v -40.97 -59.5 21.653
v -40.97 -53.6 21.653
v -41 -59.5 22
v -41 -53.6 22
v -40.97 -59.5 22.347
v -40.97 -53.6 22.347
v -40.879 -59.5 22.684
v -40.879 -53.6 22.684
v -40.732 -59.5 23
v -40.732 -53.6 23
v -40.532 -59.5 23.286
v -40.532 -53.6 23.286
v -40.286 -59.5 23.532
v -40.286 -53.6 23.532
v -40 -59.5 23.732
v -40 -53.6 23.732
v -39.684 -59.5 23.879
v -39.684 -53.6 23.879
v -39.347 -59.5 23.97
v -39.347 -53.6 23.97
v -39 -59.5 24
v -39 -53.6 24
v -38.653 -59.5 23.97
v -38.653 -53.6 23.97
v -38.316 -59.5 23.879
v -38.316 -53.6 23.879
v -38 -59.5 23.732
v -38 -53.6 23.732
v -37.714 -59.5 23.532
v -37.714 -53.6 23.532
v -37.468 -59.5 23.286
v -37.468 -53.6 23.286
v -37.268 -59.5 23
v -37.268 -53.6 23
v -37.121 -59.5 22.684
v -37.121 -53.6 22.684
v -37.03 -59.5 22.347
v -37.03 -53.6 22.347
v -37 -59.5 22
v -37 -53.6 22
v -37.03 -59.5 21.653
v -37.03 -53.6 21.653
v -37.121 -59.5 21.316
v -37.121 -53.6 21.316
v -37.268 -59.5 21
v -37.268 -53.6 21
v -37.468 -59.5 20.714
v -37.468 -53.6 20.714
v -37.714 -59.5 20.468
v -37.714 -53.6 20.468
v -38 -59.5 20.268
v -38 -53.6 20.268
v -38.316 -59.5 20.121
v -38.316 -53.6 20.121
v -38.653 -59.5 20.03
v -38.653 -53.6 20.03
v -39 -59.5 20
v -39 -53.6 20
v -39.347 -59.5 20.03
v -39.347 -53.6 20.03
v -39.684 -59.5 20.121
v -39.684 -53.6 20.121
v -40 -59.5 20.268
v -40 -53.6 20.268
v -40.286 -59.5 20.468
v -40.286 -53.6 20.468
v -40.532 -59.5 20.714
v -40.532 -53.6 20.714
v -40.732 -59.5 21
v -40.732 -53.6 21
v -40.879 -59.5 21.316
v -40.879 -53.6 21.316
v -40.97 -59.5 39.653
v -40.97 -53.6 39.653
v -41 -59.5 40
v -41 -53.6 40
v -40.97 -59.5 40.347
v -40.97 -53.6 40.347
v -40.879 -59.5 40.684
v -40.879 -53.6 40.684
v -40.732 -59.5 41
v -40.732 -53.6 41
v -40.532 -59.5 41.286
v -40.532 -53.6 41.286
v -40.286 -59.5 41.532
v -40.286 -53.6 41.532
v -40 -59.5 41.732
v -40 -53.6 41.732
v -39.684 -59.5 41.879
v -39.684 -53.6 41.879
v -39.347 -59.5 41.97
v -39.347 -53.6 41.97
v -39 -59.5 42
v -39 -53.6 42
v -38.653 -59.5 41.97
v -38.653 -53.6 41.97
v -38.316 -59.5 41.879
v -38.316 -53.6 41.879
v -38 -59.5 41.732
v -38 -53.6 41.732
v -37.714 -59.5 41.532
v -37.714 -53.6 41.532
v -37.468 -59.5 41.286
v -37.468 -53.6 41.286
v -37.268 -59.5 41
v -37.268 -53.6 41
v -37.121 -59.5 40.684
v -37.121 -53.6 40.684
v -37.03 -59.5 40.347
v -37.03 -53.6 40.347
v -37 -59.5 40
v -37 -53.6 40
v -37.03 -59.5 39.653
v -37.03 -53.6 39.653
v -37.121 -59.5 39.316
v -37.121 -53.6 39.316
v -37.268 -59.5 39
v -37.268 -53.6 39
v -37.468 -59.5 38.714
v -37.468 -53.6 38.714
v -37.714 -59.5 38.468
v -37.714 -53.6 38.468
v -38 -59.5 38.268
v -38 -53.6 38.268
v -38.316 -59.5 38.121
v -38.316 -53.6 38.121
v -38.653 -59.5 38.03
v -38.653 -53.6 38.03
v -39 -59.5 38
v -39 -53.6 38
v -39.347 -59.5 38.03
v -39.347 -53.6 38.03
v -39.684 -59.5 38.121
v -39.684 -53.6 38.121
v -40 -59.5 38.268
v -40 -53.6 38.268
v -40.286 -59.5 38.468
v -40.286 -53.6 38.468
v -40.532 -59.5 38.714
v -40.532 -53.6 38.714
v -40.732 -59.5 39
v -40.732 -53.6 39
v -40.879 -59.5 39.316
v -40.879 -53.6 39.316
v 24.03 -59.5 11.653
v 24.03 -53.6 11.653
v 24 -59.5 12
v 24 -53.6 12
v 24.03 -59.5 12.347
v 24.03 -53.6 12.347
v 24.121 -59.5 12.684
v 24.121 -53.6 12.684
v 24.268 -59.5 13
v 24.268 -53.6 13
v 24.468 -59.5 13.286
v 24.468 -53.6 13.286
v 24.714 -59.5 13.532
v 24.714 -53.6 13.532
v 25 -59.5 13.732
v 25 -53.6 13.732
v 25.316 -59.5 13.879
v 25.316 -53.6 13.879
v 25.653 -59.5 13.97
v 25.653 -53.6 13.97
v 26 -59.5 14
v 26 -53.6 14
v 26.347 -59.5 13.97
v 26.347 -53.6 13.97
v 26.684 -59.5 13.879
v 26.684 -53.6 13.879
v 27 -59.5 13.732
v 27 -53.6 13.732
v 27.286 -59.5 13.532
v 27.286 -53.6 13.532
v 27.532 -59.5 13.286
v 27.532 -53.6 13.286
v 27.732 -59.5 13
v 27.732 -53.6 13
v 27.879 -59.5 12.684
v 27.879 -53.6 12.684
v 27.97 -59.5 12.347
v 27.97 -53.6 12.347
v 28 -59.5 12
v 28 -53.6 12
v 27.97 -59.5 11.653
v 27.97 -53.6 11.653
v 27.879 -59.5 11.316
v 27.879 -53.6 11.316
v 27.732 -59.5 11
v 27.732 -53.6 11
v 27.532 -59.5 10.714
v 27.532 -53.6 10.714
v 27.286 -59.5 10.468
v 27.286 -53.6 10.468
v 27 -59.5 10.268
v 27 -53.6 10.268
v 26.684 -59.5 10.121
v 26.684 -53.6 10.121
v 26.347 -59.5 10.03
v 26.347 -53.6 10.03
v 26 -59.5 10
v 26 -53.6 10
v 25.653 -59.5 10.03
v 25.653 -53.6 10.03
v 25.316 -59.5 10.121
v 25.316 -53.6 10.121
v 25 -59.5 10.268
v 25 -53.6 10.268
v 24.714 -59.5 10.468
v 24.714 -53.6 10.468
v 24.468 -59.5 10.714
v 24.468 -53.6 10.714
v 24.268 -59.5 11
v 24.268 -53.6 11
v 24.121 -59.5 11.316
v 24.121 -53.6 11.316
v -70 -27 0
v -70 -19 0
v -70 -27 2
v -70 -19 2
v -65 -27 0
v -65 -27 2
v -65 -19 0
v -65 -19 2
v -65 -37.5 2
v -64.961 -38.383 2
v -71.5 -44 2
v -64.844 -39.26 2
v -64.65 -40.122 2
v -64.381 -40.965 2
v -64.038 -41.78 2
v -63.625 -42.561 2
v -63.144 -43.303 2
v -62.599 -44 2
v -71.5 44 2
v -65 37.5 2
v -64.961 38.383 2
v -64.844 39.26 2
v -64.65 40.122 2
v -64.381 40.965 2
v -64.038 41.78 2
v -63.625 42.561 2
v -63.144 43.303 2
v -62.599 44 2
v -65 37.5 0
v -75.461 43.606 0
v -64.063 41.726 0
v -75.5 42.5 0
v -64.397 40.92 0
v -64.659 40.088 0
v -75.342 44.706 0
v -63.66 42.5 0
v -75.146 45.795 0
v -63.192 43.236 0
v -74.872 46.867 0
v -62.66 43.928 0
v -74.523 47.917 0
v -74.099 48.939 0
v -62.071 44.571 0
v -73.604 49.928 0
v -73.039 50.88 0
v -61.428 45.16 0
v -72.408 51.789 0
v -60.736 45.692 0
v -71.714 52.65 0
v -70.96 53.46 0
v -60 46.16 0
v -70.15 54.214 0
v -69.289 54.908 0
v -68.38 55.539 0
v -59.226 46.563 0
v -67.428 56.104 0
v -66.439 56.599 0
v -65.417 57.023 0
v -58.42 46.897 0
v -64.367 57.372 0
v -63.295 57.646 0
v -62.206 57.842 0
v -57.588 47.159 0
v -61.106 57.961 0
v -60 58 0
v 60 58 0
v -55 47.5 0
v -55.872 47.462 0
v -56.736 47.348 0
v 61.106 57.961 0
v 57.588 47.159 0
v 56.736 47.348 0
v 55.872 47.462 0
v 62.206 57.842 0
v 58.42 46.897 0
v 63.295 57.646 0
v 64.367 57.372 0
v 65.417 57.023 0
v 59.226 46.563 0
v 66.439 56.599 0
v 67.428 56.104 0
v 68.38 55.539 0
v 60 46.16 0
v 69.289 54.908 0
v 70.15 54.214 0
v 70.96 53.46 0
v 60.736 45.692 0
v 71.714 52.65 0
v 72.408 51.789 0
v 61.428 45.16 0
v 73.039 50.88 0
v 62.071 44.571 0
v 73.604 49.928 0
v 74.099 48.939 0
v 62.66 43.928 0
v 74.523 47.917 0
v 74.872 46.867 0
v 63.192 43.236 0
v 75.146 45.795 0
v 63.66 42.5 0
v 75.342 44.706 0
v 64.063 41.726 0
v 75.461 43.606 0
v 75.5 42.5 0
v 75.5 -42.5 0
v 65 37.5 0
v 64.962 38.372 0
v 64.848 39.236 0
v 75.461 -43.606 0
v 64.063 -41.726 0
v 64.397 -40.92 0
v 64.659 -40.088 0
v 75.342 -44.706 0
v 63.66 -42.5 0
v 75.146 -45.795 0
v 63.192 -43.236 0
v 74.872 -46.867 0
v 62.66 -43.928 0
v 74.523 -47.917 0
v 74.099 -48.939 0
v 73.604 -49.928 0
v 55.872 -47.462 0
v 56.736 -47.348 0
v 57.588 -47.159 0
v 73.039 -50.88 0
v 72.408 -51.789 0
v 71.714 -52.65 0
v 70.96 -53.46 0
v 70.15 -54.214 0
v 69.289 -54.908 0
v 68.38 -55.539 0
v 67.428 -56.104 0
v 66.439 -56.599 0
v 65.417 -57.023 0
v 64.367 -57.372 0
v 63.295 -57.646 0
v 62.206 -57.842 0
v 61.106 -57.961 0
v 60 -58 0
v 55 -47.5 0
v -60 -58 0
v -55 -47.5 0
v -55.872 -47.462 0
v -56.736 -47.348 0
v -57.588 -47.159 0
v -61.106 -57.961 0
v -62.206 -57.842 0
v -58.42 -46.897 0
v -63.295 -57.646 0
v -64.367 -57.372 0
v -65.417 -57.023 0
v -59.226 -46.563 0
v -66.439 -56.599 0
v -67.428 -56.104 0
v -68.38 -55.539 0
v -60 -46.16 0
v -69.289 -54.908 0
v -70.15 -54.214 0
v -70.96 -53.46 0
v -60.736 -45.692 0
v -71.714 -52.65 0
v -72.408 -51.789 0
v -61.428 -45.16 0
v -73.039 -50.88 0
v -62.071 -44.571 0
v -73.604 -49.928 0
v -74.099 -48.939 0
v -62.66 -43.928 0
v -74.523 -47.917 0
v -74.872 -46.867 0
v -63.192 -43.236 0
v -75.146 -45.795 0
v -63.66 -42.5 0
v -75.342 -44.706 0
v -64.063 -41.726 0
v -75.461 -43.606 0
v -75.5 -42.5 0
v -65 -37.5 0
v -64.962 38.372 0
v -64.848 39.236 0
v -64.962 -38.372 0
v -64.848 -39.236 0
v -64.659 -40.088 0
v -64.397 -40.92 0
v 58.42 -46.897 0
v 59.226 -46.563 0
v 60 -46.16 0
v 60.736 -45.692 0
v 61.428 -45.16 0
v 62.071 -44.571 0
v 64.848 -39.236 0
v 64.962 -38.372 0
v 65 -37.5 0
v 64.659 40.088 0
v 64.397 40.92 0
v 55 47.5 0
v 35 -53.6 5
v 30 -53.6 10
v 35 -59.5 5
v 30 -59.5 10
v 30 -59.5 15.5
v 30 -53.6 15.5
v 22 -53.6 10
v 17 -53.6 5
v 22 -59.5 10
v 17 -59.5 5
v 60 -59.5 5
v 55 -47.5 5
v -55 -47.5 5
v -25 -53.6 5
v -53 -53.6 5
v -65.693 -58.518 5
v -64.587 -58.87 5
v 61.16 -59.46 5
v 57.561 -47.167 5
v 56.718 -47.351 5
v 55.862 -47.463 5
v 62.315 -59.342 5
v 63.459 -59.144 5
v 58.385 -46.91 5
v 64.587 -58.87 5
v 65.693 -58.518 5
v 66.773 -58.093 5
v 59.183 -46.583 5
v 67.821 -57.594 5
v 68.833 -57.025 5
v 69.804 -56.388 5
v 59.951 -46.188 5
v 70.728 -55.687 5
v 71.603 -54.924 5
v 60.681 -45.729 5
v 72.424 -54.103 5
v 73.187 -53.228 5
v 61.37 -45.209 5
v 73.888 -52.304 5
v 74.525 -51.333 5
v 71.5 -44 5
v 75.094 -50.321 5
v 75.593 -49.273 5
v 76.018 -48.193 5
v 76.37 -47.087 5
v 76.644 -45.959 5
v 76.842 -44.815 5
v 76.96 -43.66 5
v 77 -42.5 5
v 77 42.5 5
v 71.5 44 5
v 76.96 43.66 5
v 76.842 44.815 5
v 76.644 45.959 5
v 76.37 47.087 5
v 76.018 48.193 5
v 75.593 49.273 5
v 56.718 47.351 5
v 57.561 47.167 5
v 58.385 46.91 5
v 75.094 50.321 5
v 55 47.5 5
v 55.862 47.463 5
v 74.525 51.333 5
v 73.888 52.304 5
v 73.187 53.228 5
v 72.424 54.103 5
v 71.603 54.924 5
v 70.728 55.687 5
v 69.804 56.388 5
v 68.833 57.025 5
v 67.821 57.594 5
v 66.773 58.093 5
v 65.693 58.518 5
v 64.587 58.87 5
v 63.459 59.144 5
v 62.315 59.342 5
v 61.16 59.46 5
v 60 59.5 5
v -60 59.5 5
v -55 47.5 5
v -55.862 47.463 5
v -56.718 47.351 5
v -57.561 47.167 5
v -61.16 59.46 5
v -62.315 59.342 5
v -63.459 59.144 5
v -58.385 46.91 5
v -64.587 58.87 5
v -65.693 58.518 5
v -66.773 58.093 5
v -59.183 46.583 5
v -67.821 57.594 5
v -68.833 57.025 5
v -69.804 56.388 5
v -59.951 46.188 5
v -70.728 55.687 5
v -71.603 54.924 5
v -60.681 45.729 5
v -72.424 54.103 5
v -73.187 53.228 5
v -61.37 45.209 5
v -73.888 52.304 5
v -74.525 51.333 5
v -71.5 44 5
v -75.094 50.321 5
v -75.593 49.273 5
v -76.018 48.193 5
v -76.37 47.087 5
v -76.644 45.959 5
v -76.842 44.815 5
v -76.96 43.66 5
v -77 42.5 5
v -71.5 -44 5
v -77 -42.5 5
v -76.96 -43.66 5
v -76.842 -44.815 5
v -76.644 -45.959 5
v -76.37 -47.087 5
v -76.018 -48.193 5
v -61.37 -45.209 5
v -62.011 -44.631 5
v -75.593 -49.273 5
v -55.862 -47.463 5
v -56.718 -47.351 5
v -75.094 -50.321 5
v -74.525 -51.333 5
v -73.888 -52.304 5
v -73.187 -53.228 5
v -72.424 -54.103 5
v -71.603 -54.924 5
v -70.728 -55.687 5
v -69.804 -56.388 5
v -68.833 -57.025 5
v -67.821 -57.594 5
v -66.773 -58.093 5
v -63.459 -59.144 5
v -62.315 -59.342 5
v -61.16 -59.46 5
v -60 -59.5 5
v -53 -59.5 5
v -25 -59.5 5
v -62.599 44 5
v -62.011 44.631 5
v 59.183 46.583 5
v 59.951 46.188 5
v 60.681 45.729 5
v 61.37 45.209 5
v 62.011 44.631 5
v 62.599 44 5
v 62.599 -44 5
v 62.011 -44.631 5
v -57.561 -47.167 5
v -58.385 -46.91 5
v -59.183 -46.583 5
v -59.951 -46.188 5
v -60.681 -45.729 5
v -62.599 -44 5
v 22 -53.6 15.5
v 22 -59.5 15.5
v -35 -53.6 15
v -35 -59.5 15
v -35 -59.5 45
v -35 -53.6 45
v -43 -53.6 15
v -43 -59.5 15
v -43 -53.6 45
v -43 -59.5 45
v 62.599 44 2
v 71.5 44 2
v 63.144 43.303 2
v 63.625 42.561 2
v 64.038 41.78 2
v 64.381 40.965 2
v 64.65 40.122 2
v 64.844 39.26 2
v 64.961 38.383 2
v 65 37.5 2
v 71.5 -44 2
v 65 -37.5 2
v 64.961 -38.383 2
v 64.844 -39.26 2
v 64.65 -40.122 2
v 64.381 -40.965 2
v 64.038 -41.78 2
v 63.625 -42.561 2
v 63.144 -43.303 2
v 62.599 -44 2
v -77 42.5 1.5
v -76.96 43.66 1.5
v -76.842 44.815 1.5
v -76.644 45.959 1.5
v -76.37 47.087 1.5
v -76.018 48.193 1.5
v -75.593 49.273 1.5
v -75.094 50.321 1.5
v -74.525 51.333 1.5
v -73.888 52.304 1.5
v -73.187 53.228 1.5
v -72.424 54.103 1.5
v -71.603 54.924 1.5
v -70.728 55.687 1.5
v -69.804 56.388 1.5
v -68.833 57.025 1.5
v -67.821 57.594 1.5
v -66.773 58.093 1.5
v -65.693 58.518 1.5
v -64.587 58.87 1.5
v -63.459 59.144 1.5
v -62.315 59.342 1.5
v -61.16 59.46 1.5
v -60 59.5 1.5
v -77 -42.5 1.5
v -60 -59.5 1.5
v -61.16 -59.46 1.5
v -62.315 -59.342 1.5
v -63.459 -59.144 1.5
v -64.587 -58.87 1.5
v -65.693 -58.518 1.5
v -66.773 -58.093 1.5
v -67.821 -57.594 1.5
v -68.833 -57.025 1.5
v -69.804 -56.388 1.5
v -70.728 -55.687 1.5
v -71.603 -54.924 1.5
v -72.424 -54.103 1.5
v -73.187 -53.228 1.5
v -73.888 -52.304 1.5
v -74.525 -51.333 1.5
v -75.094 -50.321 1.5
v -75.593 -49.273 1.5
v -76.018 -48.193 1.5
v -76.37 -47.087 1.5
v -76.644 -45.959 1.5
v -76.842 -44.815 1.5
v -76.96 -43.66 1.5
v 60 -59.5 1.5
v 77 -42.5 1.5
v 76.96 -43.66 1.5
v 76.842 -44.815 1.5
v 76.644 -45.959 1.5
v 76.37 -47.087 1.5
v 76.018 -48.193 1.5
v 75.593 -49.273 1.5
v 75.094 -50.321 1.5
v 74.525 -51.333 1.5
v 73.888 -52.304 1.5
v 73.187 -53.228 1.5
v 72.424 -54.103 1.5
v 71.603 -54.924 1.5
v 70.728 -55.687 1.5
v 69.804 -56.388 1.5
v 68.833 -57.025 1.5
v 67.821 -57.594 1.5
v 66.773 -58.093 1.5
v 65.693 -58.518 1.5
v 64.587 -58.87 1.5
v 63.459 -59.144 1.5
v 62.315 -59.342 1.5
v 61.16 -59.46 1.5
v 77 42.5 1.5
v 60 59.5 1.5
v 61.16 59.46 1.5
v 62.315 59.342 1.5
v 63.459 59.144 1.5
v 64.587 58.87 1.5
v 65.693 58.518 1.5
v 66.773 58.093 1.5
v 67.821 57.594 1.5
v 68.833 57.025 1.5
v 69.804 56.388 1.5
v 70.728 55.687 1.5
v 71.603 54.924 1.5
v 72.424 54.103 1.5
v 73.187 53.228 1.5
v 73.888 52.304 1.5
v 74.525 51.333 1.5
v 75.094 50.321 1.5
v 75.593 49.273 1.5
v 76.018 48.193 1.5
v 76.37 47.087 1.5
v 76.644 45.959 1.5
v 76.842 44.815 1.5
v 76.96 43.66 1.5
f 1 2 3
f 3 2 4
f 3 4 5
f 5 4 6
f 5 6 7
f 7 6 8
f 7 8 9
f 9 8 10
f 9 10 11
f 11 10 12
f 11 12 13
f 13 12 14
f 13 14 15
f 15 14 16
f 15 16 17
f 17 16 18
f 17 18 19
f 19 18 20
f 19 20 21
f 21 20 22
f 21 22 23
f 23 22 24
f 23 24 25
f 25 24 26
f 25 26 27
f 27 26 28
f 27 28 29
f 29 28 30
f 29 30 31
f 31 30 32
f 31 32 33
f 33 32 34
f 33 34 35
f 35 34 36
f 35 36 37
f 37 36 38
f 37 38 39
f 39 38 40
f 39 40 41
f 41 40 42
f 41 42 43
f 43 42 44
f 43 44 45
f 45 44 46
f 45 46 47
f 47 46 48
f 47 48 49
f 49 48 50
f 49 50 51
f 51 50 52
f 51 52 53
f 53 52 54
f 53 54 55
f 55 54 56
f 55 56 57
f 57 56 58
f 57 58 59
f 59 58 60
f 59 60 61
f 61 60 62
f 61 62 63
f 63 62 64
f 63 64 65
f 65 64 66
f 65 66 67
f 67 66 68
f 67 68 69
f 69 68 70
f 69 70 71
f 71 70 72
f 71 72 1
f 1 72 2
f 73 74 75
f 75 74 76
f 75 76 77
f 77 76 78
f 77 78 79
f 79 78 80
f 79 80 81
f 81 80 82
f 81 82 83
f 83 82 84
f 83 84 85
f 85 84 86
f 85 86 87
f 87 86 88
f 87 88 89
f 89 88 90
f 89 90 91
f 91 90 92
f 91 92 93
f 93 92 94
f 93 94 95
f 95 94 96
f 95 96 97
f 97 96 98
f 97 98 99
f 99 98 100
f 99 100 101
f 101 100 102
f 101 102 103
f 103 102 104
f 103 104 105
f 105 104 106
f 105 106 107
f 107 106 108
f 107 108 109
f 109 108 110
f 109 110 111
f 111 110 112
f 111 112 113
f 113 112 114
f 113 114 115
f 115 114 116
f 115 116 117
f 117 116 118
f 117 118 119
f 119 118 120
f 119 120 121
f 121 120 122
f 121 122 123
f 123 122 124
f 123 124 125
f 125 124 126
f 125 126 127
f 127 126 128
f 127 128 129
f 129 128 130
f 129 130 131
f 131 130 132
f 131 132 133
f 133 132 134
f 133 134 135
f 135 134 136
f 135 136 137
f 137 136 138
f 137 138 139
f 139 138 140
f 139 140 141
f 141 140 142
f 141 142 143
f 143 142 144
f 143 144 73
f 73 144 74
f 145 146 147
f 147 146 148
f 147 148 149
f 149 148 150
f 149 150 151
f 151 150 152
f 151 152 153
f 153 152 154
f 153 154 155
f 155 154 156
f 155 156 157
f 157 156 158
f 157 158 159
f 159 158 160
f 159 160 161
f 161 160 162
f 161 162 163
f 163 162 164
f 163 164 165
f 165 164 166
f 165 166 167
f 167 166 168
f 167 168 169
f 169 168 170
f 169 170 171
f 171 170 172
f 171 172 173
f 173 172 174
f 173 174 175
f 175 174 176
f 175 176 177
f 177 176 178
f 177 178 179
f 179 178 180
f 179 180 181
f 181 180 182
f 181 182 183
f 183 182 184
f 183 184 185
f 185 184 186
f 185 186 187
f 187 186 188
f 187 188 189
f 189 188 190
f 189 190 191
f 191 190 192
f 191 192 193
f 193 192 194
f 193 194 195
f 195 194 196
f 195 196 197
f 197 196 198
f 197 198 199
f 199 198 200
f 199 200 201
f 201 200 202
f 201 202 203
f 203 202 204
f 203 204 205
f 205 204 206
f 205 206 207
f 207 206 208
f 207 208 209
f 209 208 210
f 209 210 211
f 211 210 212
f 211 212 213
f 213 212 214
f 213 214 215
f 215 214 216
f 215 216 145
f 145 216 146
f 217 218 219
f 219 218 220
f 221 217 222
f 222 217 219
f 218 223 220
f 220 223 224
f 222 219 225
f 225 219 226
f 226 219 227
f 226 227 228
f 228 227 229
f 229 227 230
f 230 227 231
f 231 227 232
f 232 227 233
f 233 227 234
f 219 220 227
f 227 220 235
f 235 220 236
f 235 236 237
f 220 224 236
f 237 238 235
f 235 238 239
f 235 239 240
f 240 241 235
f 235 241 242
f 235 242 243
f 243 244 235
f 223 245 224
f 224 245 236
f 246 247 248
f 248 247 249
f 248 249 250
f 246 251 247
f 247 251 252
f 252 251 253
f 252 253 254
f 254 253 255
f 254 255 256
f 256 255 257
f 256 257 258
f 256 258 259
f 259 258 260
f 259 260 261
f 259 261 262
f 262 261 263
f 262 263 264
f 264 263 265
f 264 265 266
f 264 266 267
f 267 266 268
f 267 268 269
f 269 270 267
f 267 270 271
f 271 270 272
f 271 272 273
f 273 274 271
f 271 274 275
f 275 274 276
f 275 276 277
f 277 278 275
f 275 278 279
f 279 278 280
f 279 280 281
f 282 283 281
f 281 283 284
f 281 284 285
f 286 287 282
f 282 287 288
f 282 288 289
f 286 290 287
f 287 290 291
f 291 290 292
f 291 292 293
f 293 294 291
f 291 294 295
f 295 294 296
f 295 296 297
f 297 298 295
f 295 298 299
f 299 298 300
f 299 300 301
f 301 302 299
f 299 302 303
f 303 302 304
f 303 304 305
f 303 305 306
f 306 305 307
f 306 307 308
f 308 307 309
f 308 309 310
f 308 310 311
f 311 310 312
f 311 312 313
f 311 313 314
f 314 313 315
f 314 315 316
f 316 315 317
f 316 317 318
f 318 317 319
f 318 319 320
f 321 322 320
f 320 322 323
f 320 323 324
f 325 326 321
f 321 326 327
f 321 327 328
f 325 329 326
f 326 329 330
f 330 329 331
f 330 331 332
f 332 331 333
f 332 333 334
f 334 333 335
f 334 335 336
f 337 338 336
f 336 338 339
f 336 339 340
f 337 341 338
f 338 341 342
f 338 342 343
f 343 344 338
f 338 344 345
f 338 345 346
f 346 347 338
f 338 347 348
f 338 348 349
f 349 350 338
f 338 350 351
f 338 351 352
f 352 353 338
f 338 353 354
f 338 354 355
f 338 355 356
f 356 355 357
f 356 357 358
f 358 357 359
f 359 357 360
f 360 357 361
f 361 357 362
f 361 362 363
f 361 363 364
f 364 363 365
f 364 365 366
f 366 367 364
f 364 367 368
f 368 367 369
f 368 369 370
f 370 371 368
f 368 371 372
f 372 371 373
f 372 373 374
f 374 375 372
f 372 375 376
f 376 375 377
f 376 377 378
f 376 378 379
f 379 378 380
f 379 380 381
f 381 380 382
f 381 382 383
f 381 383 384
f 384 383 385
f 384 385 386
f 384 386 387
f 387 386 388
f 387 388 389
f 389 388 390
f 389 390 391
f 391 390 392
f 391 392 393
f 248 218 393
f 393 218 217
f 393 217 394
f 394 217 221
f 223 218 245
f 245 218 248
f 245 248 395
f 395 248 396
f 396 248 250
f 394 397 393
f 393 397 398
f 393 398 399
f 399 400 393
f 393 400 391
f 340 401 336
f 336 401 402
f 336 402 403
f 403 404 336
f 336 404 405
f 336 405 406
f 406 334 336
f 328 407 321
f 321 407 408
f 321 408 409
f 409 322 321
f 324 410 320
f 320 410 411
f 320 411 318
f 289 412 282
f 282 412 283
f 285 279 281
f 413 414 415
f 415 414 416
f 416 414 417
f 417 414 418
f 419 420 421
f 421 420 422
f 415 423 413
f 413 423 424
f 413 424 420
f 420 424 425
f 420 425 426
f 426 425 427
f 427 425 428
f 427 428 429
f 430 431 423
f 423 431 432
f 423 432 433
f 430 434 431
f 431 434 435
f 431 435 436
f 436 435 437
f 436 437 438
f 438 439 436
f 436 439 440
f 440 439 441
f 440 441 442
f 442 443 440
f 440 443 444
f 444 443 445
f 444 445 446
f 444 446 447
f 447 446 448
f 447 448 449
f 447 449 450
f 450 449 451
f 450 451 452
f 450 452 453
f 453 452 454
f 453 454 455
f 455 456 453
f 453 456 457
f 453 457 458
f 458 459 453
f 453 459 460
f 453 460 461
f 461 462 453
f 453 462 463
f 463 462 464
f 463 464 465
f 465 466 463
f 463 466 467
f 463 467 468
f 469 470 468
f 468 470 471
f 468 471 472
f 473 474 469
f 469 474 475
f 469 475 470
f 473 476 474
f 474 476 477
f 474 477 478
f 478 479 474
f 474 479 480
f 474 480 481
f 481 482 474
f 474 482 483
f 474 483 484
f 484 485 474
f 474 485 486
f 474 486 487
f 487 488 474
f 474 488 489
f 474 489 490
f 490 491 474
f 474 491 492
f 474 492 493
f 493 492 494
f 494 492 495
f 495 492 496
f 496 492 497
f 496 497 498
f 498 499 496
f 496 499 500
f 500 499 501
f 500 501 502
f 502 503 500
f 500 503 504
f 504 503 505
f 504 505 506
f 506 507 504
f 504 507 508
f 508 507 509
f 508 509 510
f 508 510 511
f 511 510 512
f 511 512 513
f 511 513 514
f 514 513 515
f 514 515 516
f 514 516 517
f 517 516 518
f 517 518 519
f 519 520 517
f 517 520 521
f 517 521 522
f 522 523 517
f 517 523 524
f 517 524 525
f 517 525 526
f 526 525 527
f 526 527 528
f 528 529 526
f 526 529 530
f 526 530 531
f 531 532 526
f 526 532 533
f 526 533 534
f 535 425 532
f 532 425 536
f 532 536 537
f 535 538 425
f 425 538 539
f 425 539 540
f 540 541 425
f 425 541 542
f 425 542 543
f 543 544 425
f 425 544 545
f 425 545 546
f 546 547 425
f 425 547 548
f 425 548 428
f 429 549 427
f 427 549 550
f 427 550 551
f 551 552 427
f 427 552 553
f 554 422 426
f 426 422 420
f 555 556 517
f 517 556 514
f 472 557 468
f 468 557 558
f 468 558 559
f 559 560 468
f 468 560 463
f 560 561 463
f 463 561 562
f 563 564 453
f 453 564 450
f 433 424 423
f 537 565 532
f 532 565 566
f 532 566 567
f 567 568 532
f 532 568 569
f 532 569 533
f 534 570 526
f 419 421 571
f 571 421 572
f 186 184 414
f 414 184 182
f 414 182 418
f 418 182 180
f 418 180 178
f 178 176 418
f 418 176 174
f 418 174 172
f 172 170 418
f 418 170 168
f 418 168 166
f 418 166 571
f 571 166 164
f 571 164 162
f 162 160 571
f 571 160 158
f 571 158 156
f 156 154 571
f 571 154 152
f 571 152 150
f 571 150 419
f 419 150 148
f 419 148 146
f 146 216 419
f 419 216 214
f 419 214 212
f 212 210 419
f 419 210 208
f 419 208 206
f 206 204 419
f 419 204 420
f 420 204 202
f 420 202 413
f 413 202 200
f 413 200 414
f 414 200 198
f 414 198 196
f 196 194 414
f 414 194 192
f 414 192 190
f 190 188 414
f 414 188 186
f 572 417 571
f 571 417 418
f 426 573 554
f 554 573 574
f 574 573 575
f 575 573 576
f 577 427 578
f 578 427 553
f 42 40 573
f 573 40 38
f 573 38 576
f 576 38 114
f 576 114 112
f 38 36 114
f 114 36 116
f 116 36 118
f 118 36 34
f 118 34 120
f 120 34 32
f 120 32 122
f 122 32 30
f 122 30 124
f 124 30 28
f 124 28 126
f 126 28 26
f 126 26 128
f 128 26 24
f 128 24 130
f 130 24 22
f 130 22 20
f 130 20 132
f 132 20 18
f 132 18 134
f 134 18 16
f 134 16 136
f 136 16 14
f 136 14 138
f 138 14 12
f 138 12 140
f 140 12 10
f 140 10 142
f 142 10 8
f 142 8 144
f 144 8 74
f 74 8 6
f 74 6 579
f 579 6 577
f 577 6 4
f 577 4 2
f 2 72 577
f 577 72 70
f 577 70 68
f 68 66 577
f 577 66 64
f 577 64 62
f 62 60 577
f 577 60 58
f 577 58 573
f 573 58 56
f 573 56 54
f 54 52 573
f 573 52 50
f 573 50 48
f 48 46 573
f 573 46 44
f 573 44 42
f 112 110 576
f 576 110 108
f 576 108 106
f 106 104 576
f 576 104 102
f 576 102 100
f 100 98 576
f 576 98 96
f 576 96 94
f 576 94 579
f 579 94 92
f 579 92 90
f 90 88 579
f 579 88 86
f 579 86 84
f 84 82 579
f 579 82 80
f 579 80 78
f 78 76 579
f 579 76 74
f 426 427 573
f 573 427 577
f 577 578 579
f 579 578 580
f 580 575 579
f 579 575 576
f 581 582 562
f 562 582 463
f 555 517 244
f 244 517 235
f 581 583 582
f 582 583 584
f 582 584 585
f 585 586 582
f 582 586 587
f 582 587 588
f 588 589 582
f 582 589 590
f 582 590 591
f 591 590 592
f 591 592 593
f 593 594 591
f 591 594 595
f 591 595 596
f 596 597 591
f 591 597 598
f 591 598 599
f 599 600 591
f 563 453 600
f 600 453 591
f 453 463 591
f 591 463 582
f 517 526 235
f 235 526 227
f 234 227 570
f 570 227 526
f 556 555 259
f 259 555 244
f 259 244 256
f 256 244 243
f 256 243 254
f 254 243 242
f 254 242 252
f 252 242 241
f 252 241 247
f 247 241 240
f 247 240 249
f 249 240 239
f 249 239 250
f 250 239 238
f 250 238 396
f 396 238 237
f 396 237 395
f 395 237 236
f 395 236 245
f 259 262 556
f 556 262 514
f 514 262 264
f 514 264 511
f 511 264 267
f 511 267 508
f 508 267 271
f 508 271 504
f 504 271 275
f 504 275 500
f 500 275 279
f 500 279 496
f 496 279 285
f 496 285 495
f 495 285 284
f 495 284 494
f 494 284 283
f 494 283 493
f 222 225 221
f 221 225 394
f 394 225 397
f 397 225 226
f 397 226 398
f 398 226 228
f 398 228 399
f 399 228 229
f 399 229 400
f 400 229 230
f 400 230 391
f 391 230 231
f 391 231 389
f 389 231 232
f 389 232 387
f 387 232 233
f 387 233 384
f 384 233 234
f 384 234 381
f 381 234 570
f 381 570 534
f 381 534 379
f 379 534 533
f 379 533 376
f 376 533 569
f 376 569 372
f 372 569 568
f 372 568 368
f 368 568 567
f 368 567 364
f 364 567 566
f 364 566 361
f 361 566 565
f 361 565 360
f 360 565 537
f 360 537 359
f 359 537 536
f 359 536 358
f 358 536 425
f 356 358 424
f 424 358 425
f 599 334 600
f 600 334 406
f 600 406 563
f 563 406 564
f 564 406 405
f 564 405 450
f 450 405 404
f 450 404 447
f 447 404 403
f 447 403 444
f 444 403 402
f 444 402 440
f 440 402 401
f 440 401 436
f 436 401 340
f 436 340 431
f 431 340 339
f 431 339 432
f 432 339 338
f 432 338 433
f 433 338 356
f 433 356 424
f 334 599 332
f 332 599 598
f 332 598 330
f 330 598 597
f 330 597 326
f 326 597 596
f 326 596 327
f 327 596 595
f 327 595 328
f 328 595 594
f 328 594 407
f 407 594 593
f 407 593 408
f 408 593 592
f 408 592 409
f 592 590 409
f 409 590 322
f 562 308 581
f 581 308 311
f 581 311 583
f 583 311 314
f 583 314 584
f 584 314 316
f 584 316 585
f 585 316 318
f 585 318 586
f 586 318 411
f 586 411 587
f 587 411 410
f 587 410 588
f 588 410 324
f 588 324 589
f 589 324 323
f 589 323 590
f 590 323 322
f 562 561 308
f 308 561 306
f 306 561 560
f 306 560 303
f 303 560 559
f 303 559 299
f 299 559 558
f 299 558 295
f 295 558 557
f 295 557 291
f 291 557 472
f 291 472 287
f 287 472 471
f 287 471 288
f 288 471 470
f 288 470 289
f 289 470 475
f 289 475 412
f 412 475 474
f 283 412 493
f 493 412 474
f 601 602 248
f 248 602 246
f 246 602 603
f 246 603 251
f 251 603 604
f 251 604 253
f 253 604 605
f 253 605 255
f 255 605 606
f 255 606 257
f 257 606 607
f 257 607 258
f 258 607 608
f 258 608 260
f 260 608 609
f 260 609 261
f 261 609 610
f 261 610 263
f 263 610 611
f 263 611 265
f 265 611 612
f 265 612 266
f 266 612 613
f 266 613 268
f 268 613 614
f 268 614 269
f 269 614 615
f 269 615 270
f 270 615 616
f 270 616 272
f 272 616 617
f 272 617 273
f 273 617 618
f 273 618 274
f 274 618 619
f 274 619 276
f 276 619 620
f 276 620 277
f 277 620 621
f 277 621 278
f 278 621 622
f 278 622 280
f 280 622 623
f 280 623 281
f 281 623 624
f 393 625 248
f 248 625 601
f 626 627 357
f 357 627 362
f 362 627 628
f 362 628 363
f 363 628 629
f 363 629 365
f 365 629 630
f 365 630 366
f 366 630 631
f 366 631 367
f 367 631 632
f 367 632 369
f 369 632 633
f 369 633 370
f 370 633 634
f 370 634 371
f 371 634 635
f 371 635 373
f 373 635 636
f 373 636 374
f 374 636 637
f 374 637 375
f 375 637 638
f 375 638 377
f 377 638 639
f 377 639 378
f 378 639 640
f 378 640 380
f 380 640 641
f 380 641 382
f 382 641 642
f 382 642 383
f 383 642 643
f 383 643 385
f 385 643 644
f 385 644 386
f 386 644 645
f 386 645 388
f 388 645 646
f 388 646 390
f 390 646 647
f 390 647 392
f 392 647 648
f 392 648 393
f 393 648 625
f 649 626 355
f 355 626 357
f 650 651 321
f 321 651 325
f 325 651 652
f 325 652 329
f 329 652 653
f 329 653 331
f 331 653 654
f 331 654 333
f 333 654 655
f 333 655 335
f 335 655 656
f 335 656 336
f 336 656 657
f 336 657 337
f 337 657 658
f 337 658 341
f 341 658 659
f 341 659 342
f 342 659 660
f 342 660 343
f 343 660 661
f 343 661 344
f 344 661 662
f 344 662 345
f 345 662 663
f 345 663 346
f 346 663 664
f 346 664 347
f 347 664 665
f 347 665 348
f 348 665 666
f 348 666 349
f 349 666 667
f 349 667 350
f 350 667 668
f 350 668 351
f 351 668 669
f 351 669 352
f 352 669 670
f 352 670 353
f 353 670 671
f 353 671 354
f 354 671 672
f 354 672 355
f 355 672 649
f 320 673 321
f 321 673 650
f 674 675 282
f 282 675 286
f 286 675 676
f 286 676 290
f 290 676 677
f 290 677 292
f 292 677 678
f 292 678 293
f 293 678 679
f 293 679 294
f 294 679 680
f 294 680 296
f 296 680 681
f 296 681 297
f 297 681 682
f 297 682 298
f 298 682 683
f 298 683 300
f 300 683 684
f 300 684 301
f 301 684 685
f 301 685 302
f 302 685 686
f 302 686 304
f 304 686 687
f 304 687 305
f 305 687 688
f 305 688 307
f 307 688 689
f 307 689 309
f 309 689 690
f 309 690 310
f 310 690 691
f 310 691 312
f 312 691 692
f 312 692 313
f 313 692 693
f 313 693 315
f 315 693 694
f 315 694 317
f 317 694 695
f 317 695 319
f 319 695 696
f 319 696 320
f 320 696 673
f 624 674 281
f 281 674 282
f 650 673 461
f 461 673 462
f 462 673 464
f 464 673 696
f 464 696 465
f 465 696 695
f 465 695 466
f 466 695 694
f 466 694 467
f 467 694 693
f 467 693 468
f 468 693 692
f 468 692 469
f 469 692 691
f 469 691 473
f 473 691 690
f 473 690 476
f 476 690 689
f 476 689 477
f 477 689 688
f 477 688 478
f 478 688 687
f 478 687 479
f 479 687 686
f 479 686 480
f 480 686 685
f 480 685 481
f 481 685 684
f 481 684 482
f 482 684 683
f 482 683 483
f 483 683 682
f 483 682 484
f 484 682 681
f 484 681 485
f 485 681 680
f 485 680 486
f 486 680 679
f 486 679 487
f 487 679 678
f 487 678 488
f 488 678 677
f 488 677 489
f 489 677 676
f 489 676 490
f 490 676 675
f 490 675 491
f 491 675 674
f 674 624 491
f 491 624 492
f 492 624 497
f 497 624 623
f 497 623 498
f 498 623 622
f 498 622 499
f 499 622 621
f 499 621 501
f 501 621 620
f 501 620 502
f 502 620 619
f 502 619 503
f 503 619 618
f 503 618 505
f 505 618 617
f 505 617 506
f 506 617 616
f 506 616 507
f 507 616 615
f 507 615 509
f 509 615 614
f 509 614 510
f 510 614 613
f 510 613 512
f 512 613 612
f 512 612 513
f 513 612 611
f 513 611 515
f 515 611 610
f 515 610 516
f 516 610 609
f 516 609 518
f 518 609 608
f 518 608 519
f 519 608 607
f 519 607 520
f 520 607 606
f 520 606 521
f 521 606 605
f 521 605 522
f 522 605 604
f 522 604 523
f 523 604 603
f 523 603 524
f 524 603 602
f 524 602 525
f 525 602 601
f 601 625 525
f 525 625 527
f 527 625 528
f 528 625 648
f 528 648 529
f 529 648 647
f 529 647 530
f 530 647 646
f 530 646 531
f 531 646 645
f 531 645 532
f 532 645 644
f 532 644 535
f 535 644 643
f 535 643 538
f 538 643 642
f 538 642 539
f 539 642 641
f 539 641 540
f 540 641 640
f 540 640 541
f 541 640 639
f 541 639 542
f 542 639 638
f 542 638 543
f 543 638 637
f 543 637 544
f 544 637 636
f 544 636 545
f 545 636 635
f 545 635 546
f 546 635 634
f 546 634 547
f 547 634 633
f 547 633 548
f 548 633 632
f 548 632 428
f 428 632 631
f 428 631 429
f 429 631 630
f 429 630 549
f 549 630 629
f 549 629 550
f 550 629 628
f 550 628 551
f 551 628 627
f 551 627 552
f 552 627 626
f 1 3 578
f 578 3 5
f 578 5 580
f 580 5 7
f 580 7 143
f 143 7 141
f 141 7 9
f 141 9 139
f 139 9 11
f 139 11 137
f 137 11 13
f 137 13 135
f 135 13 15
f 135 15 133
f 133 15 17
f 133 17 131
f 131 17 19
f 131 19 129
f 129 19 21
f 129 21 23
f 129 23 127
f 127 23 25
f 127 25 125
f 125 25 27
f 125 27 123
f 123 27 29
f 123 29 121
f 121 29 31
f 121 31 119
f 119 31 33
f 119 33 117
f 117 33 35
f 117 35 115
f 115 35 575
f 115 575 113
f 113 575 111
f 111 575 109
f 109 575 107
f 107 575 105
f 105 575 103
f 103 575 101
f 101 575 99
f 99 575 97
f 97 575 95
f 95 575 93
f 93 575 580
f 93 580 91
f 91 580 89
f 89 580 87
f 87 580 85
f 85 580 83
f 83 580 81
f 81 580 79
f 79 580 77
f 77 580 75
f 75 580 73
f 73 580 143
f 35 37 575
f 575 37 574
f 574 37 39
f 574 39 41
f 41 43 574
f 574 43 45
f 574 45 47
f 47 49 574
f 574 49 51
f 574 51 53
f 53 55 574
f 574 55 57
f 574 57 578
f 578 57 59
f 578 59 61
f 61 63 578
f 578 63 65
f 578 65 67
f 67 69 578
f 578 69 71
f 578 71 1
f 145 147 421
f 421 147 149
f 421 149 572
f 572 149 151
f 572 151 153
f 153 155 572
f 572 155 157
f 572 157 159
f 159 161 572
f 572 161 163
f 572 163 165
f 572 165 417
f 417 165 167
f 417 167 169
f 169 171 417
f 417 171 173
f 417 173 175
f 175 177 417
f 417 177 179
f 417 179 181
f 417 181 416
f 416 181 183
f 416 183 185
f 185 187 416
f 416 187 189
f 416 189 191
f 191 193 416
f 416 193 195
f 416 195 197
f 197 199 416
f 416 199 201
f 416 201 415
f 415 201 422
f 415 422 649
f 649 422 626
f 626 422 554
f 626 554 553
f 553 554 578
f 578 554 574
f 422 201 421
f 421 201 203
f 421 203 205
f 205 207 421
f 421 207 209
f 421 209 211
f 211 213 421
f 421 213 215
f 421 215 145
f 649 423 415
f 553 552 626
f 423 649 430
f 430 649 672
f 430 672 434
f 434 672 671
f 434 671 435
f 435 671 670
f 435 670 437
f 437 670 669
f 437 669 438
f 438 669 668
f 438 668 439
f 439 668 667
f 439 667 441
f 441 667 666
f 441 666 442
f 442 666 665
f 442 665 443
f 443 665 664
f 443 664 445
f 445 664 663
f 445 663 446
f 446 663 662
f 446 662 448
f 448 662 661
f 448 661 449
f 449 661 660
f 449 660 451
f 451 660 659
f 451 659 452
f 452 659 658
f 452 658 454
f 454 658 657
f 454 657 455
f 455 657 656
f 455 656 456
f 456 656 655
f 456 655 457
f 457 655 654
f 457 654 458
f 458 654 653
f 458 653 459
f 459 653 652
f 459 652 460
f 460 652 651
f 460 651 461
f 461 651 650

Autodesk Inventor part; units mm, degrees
ref_plane "YZ Plane" through (0, 0, 0) normal (1, 0, 0) x (0, 1, 0)
ref_plane "XZ Plane" through (0, 0, 0) normal (0, 1, 0) x (-1, 0, 0)
ref_plane "XY Plane" through (0, 0, 0) normal (0, 0, 1) x (1, 0, 0)
sketch "Skizze1" plane through (0, 0, 0) normal (0, 0, 1) x (1, 0, 0)
  line L0 (-77, 59.5) -> (77, 59.5)
  line L1 (77, 59.5) -> (77, -59.5)
  line L2 (77, -59.5) -> (-77, -59.5)
  line L3 (-77, -59.5) -> (-77, 59.5)
  line L4 (-77, 59.5) -> (77, -59.5) construction
  line L5 (77, 59.5) -> (-77, -59.5) construction
  point P0 (0, 0)
  dimension "d0" = 154
  dimension "d1" = 119
extrude "Extrusion1" add sketch "Skizze1" along normal blind 5
fillet "Rundung1" radius 17 4 edges at (77, 59.5, 2.5) (77, -59.5, 2.5) (-77, -59.5, 2.5) (-77, 59.5, 2.5)
chamfer "Fasen1" distance 1.5 angle 45 8 edges at (-72.0208, 54.5208, 0) (-77, 0, 0) (-72.0208, -54.5208, 0) (0, -59.5, 0) (72.0208, -54.5208, 0) (77, 0, 0) (72.0208, 54.5208, 0) (0, 59.5, 0)
sketch "Skizze2" plane through (0, 0, 5) normal (0, 0, 1) x (1, 0, 0)
  line L0 (-55, 47.5) -> (55, 47.5)
  line L1 (65, 37.5) -> (65, -37.5)
  line L2 (55, -47.5) -> (-55, -47.5)
  line L3 (-65, -37.5) -> (-65, 37.5)
  line L4 (-65, 47.5) -> (65, -47.5) construction
  line L5 (65, 47.5) -> (-65, -47.5) construction
  arc A0 (-55, 47.5) -> (-65, 37.5) centre (-55, 37.5) ccw
  arc A1 (65, 37.5) -> (55, 47.5) centre (55, 37.5) ccw
  arc A2 (-65, -37.5) -> (-55, -47.5) centre (-55, -37.5) ccw
  arc A3 (55, -47.5) -> (65, -37.5) centre (55, -37.5) ccw
  line L6 (77, -42.5) -> (77, 42.5) projected
  line L7 (-77, 42.5) -> (-77, -42.5) projected
  line L8 (-60, -59.5) -> (60, -59.5) projected
  line L9 (60, 59.5) -> (-60, 59.5) projected
  point P0 (0, 0)
  dimension "d10" = 10
  dimension "d11" = 10
  dimension "d12" = 10
  dimension "d13" = 10
  dimension "d14" = 95
  dimension "d15" = 130
  dimension "d16" = 154
  dimension "d17" = 119
extrude "Extrusion2" cut sketch "Skizze2" against normal through all
sketch "Skizze3" plane through (0, 0, 5) normal (0, 0, 1) x (1, 0, 0)
  line L0 (-71.5, 44) -> (71.5, 44)
  line L1 (71.5, 44) -> (71.5, -44)
  line L2 (71.5, -44) -> (-71.5, -44)
  line L3 (-71.5, -44) -> (-71.5, 44)
  line L4 (-71.5, 44) -> (71.5, -44) construction
  line L5 (71.5, 44) -> (-71.5, -44) construction
  point P0 (0, 0)
  dimension "d20" = 143
  dimension "d21" = 88
extrude "Extrusion3" cut sketch "Skizze3" against normal blind 3
sketch "Skizze5" plane through (0, 0, 5) normal (0, 0, 1) x (1, 0, 0)
  line L0 (-77, 42.5) -> (-77, -42.5) projected
  line L1 (-35, -59.5) -> (-43, -59.5)
  line L2 (-43, -59.5) -> (-43, -53.6)
  line L3 (-43, -53.6) -> (-35, -53.6)
  line L4 (-35, -53.6) -> (-35, -59.5)
  line L5 (-35, -59.5) -> (-43, -53.6) construction
  line L6 (-43, -59.5) -> (-35, -53.6) construction
  line L7 (-60, -59.5) -> (60, -59.5) projected
  line L8 (30, -59.5) -> (22, -59.5)
  line L9 (22, -59.5) -> (22, -53.6)
  line L10 (22, -53.6) -> (30, -53.6)
  line L11 (30, -53.6) -> (30, -59.5)
  line L12 (30, -59.5) -> (22, -53.6) construction
  line L13 (22, -59.5) -> (30, -53.6) construction
  point P0 (0, 0)
  point P1 (-39, -56.55)
  point P2 (26, -56.55)
  dimension "d29" = 38
  dimension "d30" = 5.9
  dimension "d31" = 8
  dimension "d37" = 103
  dimension "d38" = 8
  dimension "d39" = 5.9
extrude "Extrusion5" add sketch "Skizze5" along normal blind 40 contours L1 L2 L3 L4
chamfer "Fasen2" distance 10 angle 45 2 edges at (-43, -56.55, 5) (-35, -56.55, 5)
sketch "Skizze6" plane through (0, 0, 5) normal (0, 0, 1) x (1, 0, 0)
  line L0 (22, -53.6) -> (30, -53.6) projected
  line L1 (30, -53.6) -> (30, -59.5) projected
  line L2 (30, -59.5) -> (22, -59.5) projected
  line L3 (22, -59.5) -> (22, -53.6) projected
  point P0 (0, 0)
extrude "Extrusion6" add sketch "Skizze6" along normal blind 10.5
chamfer "Fasen3" distance 5 angle 45 2 edges at (22, -56.55, 5) (30, -56.55, 5)
sketch "Skizze7" plane through (0, 0, 2) normal (0, 0, 1) x (1, 0, 0)
  line L0 (-65, -27) -> (-70, -27)
  line L1 (-70, -27) -> (-70, -19)
  line L2 (-70, -19) -> (-65, -19)
  line L3 (-65, -19) -> (-65, -27)
  line L4 (-65, -27) -> (-70, -19) construction
  line L5 (-70, -27) -> (-65, -19) construction
  line L6 (-62.5993, -44) -> (-71.5, -44) projected
  line L7 (-65, 37.5) -> (-65, -37.5) projected
  point P0 (0, 0)
  point P1 (-67.5, -23)
  dimension "d45" = 21
  dimension "d46" = 8
  dimension "d48" = 5
extrude "Extrusion7" cut sketch "Skizze7" against normal blind 3
sketch "Skizze8" plane through (22, -53.6, 15.5) normal (0, 1, 0) x (1, 0, 0)
  line L0 (-57, -29.5) -> (-65, -29.5) projected
  circle A0 centre (-61, -24.5) radius 2
  circle A1 centre (-61, -6.5) radius 2
  circle A2 centre (4, 3.5) radius 2
  line L1 (8, 0) -> (0, 0) projected
  line L2 (-61, -29.5) -> (-61, 10.5) construction
  line L3 (-77, 10.5) -> (33, 10.5) construction
  point P0 (-22, 15.5)
  point P1 (4, 0)
  dimension "d51" = 4
  dimension "d52" = 5
  dimension "d53" = 4
  dimension "d54" = 18
  dimension "d55" = 4
  dimension "d56" = 33
  dimension "d57" = 0
extrude "Extrusion8" cut sketch "Skizze8" against normal through all
properties part number "220_Frame_Mainboard"
